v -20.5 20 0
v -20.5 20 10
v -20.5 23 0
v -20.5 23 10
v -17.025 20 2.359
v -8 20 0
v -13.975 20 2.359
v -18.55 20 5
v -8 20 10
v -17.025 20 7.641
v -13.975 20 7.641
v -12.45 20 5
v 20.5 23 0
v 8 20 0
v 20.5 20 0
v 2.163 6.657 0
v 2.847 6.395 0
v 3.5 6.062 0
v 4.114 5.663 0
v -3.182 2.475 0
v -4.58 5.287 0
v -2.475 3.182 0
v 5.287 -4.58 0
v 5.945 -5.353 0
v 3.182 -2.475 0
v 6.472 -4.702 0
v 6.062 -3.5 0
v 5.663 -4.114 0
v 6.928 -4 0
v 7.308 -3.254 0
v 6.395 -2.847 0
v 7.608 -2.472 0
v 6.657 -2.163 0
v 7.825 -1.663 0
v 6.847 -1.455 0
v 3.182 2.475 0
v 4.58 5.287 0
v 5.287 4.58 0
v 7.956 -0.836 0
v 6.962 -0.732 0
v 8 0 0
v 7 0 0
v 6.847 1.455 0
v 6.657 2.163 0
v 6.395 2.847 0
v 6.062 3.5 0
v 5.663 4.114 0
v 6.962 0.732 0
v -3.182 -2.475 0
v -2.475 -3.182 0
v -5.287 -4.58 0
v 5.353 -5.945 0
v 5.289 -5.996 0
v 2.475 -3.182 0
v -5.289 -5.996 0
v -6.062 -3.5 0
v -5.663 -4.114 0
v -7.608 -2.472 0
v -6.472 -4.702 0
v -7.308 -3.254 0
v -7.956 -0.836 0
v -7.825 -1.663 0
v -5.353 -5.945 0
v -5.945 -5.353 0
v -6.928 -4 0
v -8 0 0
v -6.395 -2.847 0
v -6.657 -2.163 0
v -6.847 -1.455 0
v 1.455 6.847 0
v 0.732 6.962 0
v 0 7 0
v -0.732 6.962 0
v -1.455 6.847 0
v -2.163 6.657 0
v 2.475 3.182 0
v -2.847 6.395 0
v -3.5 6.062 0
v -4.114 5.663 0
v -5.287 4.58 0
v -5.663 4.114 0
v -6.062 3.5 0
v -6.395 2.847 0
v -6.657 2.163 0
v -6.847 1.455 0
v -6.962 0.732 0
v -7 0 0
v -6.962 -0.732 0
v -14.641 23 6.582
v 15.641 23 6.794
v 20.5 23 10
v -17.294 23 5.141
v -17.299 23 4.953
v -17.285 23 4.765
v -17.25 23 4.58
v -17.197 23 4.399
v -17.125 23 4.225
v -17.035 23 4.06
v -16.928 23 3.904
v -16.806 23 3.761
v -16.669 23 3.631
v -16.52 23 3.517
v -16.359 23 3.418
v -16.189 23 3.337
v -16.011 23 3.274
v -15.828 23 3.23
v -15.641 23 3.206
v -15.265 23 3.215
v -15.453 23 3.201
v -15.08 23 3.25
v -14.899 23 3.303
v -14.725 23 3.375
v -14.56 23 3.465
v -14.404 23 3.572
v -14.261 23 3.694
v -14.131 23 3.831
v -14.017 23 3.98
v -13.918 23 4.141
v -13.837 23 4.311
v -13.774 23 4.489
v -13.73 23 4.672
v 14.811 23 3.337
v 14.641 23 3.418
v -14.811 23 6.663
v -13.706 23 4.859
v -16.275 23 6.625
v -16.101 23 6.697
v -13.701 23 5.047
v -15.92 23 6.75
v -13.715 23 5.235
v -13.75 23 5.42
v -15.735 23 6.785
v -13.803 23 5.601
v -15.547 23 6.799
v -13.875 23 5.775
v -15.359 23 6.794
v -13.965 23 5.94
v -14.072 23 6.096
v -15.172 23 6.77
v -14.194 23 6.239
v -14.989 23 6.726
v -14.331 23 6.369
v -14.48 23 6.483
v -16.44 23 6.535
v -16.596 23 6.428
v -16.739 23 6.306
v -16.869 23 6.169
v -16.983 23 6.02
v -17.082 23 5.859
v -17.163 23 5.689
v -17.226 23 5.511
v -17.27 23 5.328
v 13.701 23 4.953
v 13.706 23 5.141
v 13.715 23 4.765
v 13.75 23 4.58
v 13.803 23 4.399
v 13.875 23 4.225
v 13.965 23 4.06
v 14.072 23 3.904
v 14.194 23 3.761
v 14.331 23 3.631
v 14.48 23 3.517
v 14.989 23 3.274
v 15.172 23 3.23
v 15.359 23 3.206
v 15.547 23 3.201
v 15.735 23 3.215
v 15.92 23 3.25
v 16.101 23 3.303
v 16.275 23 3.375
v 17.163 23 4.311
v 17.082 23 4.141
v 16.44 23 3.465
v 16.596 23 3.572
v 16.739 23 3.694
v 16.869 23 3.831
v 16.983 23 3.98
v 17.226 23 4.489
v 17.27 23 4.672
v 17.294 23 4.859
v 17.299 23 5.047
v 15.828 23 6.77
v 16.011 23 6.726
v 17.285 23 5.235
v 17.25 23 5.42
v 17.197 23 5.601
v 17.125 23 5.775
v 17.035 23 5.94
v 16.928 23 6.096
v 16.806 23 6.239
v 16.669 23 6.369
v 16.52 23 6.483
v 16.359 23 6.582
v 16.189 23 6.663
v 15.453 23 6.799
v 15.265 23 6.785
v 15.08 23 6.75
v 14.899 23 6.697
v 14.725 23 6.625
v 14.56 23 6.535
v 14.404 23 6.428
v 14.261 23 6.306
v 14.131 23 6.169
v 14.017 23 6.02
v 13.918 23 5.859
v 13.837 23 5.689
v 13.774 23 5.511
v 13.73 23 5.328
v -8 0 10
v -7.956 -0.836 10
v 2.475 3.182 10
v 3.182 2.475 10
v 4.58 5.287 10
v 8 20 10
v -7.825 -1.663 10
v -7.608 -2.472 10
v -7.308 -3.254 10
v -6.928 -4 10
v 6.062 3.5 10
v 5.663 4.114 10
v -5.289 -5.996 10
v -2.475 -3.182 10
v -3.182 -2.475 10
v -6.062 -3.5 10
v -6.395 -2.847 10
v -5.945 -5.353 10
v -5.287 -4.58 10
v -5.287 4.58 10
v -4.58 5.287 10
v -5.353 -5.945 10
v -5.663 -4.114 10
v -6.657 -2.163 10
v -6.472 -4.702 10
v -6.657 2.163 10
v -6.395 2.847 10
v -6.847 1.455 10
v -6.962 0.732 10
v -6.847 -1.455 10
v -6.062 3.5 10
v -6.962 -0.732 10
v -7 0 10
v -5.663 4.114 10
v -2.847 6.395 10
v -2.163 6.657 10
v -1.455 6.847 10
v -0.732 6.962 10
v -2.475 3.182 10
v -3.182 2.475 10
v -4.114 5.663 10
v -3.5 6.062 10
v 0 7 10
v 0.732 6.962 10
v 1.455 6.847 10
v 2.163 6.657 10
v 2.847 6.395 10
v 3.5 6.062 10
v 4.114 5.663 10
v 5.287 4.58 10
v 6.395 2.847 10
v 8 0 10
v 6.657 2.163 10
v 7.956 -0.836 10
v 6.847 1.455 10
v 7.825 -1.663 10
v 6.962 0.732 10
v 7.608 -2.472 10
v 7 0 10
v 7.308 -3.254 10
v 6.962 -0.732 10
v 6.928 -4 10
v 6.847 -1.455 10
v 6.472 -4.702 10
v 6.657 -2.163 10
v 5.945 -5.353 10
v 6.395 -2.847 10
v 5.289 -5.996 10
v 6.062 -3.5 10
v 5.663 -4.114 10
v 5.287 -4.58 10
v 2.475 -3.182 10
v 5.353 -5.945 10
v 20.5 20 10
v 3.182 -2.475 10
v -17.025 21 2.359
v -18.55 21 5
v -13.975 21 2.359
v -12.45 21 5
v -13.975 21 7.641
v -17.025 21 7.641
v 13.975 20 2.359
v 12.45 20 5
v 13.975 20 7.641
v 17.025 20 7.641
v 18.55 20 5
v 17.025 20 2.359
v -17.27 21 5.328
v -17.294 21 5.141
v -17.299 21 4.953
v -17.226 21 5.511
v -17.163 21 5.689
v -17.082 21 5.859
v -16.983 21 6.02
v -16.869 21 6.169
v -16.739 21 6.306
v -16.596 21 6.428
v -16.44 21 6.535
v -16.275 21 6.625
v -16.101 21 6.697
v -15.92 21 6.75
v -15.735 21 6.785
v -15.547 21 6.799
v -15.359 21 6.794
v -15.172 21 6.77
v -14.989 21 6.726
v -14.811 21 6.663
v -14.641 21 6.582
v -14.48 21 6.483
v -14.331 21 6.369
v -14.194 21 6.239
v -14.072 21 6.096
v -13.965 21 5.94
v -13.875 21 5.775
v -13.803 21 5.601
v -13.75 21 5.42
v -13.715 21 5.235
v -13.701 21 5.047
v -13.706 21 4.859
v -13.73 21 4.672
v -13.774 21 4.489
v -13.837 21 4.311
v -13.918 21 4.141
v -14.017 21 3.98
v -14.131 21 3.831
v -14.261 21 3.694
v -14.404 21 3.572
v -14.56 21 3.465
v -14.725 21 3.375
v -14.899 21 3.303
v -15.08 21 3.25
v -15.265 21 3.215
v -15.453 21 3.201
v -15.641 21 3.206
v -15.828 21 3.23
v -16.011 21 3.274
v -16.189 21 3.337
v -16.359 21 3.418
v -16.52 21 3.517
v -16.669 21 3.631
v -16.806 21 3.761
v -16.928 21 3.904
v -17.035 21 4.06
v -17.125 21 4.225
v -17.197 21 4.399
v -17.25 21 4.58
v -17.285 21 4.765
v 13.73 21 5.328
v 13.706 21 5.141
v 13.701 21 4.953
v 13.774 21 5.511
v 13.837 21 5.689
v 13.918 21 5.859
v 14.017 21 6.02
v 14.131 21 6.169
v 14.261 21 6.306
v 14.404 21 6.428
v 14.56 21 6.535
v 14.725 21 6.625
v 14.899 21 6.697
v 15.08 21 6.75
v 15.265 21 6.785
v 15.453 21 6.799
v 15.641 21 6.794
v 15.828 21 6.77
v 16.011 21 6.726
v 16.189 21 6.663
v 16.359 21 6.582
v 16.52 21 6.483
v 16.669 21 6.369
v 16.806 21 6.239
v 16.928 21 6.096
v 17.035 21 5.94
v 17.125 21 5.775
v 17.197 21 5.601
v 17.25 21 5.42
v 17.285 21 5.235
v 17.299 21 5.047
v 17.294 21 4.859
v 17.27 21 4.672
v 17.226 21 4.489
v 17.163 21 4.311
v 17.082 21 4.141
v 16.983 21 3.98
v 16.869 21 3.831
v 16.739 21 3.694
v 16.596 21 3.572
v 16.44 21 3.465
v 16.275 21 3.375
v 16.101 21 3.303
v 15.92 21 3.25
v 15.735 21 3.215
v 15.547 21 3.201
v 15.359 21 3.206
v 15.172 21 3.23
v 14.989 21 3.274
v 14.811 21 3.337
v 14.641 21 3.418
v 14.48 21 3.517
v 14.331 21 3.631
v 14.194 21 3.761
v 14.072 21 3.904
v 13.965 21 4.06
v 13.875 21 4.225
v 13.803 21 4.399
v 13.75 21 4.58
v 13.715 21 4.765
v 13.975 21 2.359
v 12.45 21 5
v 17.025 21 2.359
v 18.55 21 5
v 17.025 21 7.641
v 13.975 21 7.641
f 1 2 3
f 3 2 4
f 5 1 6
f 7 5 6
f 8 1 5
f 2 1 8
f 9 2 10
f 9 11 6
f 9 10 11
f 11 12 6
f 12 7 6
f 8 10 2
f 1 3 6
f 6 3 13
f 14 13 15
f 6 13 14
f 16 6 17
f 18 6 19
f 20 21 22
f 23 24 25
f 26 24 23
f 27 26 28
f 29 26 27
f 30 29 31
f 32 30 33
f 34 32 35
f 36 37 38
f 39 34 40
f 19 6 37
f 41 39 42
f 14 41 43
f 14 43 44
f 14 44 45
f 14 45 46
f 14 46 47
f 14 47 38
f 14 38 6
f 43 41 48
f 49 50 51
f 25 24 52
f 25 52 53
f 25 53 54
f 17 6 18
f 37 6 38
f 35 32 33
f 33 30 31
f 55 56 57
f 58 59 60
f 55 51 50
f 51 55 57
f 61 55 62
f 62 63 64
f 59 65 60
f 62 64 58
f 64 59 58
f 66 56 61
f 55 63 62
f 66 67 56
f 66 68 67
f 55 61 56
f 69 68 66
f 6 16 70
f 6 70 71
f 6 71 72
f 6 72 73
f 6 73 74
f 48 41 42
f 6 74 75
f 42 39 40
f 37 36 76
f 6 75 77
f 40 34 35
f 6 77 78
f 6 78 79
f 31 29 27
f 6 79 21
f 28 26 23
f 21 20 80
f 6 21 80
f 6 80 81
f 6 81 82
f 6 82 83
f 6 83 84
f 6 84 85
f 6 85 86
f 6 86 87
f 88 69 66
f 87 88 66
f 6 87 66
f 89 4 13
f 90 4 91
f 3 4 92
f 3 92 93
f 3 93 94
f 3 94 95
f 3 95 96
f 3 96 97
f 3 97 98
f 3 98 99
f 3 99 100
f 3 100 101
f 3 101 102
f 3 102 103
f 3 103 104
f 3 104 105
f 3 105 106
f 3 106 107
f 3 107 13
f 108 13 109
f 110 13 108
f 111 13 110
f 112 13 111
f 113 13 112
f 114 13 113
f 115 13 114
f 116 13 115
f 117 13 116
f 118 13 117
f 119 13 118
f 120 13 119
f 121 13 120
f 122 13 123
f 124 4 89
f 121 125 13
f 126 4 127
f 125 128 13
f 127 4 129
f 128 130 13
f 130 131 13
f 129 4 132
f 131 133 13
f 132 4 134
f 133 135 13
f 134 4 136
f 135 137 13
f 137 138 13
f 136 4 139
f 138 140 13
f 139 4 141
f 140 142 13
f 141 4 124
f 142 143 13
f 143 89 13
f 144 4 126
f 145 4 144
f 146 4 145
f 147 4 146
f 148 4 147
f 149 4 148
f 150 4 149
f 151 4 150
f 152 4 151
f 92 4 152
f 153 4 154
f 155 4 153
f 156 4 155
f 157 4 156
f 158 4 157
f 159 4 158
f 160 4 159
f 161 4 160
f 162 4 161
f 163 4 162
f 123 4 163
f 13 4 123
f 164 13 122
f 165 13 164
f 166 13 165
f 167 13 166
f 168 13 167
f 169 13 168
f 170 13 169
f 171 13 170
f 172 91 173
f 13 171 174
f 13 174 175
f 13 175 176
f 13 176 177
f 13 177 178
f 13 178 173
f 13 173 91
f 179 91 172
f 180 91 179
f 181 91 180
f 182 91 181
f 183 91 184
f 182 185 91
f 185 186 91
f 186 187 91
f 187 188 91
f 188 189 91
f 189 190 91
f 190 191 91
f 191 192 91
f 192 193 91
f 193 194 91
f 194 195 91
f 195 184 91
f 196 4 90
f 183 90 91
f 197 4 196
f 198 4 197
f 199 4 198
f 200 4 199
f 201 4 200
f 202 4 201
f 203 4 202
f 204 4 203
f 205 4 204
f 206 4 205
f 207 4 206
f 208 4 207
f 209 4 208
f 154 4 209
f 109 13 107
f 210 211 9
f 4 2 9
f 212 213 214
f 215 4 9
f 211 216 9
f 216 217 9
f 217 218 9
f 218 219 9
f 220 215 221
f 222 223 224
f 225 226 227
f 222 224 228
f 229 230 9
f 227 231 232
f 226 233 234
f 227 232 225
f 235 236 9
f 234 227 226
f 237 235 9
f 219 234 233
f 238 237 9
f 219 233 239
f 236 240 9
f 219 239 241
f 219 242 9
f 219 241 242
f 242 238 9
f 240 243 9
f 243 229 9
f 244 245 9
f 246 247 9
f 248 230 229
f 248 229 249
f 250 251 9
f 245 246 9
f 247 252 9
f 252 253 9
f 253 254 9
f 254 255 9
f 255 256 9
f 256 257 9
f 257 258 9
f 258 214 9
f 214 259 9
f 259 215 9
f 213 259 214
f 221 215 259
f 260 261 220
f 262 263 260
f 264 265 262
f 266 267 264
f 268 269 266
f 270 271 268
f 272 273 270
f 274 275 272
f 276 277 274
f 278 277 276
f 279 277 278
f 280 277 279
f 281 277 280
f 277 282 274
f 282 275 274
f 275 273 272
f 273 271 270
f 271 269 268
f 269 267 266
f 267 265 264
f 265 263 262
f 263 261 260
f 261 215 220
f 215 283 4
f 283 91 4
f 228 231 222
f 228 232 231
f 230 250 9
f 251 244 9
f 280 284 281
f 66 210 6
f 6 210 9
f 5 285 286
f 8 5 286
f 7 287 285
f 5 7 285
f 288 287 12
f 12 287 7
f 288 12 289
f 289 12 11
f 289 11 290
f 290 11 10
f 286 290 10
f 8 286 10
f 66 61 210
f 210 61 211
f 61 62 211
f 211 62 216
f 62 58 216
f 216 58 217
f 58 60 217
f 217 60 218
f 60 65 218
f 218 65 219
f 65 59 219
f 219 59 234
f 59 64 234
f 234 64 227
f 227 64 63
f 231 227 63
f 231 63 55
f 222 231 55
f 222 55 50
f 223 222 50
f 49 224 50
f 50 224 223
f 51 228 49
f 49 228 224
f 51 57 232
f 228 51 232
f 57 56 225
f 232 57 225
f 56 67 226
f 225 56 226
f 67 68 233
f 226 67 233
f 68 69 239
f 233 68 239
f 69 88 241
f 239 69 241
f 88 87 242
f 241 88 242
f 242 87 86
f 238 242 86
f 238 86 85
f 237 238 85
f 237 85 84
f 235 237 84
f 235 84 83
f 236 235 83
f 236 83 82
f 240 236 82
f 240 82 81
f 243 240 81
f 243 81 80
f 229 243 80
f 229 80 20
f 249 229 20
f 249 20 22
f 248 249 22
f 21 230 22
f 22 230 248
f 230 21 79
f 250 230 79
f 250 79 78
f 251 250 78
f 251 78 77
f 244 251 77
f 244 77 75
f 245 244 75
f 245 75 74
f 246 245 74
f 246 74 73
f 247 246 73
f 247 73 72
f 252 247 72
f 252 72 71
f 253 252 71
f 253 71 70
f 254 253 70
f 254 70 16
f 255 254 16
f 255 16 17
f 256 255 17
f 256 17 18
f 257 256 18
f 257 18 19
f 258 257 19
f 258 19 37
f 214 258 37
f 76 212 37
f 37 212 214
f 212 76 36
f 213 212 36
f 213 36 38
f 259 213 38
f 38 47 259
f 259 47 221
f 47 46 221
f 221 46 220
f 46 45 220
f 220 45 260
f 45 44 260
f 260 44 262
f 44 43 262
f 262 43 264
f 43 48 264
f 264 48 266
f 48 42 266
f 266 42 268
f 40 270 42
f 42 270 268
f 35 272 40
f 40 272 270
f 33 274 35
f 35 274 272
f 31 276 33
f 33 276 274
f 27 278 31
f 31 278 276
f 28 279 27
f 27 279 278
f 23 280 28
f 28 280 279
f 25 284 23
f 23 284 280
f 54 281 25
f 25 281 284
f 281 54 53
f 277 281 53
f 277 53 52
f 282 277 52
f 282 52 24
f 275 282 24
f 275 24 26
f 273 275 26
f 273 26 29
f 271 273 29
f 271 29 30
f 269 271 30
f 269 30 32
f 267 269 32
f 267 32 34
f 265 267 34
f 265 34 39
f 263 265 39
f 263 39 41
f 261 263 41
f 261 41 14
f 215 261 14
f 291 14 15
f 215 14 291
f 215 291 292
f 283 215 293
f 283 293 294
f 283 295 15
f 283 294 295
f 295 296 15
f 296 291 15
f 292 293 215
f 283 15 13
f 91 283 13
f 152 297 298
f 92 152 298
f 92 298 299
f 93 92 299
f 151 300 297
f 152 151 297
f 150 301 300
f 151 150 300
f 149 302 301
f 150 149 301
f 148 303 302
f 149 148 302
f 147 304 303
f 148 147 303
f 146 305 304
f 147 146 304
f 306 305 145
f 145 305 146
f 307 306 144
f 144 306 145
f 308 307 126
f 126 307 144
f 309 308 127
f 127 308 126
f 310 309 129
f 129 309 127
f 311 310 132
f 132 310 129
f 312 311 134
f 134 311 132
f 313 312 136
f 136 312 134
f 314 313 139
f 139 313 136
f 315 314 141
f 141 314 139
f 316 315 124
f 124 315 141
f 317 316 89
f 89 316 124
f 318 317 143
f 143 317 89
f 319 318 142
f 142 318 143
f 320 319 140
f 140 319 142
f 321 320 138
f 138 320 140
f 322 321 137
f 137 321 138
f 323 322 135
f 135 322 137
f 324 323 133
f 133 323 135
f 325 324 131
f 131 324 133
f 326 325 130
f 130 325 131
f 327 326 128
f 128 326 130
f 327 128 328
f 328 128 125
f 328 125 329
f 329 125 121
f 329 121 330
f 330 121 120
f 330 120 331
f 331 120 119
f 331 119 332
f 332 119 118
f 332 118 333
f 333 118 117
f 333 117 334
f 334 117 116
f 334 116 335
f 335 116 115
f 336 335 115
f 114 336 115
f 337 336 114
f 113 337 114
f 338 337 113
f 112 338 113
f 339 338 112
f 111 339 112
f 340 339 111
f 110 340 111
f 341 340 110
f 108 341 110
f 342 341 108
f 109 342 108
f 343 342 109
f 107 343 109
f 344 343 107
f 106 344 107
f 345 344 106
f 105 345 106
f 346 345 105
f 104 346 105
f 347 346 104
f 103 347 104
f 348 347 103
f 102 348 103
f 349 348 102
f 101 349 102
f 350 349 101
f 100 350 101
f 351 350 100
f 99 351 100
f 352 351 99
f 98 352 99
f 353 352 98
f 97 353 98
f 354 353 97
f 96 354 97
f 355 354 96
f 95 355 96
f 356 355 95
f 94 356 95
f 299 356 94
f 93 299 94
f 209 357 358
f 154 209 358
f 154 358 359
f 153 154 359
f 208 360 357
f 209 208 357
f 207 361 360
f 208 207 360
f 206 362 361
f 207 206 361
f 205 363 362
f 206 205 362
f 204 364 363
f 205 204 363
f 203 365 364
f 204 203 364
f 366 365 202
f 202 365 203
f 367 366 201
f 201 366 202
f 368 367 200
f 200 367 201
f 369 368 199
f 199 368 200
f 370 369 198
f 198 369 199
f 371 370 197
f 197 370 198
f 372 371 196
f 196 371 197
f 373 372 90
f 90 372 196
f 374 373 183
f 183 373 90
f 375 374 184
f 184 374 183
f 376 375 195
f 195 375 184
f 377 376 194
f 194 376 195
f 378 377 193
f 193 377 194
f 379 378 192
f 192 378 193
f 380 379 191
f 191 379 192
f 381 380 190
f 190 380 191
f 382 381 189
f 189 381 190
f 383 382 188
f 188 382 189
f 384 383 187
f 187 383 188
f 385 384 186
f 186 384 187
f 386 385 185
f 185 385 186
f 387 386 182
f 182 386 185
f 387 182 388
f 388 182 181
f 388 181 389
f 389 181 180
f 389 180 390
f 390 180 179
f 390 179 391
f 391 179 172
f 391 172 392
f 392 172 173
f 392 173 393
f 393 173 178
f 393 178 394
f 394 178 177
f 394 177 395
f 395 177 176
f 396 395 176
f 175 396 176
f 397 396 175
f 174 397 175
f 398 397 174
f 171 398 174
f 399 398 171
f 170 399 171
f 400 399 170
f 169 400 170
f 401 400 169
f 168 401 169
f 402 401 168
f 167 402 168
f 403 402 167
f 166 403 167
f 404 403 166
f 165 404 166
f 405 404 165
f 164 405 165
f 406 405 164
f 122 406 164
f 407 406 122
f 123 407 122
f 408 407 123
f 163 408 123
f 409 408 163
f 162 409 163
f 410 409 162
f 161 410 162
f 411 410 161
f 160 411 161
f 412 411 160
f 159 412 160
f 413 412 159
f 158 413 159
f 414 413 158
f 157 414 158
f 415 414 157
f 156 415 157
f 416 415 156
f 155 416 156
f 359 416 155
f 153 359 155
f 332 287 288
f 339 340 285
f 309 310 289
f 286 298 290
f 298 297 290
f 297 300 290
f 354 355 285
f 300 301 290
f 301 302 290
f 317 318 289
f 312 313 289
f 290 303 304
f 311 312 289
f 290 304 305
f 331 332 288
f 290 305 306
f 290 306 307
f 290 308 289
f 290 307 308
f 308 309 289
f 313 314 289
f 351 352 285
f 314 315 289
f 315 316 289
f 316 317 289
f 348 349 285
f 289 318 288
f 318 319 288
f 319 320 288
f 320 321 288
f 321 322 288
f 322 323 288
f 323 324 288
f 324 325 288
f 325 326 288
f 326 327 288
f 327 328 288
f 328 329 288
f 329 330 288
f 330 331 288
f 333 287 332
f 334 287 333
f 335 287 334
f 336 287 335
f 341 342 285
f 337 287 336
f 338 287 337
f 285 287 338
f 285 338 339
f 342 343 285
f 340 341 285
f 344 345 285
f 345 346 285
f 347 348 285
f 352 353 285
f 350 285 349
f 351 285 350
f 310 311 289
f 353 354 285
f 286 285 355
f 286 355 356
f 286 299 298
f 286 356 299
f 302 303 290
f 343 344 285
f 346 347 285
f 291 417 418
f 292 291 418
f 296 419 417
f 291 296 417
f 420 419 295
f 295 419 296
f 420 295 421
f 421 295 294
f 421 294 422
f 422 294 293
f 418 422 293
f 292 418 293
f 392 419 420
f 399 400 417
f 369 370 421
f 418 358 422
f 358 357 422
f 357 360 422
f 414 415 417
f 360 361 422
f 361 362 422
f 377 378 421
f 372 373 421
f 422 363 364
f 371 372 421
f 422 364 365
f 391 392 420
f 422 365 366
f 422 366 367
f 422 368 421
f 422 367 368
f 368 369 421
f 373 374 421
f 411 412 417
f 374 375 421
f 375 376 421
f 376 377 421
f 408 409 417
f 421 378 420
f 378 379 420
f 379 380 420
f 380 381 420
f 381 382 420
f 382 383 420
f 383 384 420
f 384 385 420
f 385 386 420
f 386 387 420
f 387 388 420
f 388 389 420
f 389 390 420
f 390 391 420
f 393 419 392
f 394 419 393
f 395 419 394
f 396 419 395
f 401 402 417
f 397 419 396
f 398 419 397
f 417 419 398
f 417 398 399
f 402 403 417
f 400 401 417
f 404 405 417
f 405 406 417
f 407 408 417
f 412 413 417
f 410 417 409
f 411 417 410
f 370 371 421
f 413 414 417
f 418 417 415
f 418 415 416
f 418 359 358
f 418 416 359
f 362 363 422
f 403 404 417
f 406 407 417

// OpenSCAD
/*
 * y bushing
 *
 * Mount bed directly on y-rods. Reduces moving mass, ensures rigidity,
 * increases print height.
 * 
 * Copyright 2012 <b@Zi.iS>
 * License GPLv2
 *
 * Based on http://www.thingiverse.com/thing:4434 by whosawhatsis
 */
$fn = 60;

m8 = 8/2;
m3 = 3.6/2;
m3_nut = 6.1 /2;

mount();

module mount(
	rod = m8,
	height = 23,
	length = 10,
	pitch = 31,
	bolt = m3,
	nut = m3_nut,
	thickness = 3,
	bushing_thickness = 1
) {
	bushing(
		rod = rod,
		length = length,
		width = rod*4,
		height = height,
		thickness = bushing_thickness
	);

	width = pitch + length;

	difference() {
		translate([
			-width/2,
			height - thickness,
			0
		]) {
			cube([
				width,
				thickness,
				length
			]);
		}
		translate([
			-width/2+length/2,
			height+1,
			length/2
		]) {
			rotate( [90, 22.5, 0] ) {
				cylinder(
					h = thickness+2,
					r = bolt
				);
			}
		}
		translate([
			-width/2+length/2+pitch,
			height+1,
			length/2
		]) {
			rotate( [90, 22.5, 0] ) {
				cylinder(
					h = thickness+2,
					r = bolt
				);
			}
		}
		translate([
			-width/2+length/2,
			height-thickness/3*2,
			length/2
		]) {
			rotate( [90, 0, 0] ) {
				cylinder(
					h = thickness,
					r = nut,
					$fn = 6
				);
			}
		}
		translate([
			-width/2+length/2+pitch,
			height-thickness/3*2,
			length/2
		]) {
			rotate( [90, 0, 0] ) {
				cylinder(
					h = thickness+2,
					r = nut,
					$fn = 6
				);
			}
		}
	}
}
module bushing(
	rod = m8,
	length = m8*3,
	width = m8*4,
	height = m8*2,
	thickness = 1
) {
	linear_extrude(
		height = length,
		convexity = 5
	) {
		difference() {
			union() {
				translate([
					-width / 2,
					0,
					0
				]) {
					square(
						[
							width,
							height
						]
					);

				}
				circle(
					width /2
				);
			}
			
			rotate(45) {
				square(
					center = true,
					rod*2
				);
			}
			intersection() {
				for(a = [0:2]) {
					rotate(45 + 90 * (a-1)) {
						translate([
							width / 4 + thickness/2,
							width / 4 + thickness/2,
							0
						]) {
							square(
								center = true,
								width / 2
							);
						}
					}
				}
				circle(
					center = true,
					width /2 - thickness
				);
			}
			
			rotate(45 + 180) {
				translate([
					width / 4 + thickness/2,
					width / 4 + thickness/2,
					0
				]) {
					square(
						center = true, 
						width / 2
					);
				}
			}
		}
	}
}
